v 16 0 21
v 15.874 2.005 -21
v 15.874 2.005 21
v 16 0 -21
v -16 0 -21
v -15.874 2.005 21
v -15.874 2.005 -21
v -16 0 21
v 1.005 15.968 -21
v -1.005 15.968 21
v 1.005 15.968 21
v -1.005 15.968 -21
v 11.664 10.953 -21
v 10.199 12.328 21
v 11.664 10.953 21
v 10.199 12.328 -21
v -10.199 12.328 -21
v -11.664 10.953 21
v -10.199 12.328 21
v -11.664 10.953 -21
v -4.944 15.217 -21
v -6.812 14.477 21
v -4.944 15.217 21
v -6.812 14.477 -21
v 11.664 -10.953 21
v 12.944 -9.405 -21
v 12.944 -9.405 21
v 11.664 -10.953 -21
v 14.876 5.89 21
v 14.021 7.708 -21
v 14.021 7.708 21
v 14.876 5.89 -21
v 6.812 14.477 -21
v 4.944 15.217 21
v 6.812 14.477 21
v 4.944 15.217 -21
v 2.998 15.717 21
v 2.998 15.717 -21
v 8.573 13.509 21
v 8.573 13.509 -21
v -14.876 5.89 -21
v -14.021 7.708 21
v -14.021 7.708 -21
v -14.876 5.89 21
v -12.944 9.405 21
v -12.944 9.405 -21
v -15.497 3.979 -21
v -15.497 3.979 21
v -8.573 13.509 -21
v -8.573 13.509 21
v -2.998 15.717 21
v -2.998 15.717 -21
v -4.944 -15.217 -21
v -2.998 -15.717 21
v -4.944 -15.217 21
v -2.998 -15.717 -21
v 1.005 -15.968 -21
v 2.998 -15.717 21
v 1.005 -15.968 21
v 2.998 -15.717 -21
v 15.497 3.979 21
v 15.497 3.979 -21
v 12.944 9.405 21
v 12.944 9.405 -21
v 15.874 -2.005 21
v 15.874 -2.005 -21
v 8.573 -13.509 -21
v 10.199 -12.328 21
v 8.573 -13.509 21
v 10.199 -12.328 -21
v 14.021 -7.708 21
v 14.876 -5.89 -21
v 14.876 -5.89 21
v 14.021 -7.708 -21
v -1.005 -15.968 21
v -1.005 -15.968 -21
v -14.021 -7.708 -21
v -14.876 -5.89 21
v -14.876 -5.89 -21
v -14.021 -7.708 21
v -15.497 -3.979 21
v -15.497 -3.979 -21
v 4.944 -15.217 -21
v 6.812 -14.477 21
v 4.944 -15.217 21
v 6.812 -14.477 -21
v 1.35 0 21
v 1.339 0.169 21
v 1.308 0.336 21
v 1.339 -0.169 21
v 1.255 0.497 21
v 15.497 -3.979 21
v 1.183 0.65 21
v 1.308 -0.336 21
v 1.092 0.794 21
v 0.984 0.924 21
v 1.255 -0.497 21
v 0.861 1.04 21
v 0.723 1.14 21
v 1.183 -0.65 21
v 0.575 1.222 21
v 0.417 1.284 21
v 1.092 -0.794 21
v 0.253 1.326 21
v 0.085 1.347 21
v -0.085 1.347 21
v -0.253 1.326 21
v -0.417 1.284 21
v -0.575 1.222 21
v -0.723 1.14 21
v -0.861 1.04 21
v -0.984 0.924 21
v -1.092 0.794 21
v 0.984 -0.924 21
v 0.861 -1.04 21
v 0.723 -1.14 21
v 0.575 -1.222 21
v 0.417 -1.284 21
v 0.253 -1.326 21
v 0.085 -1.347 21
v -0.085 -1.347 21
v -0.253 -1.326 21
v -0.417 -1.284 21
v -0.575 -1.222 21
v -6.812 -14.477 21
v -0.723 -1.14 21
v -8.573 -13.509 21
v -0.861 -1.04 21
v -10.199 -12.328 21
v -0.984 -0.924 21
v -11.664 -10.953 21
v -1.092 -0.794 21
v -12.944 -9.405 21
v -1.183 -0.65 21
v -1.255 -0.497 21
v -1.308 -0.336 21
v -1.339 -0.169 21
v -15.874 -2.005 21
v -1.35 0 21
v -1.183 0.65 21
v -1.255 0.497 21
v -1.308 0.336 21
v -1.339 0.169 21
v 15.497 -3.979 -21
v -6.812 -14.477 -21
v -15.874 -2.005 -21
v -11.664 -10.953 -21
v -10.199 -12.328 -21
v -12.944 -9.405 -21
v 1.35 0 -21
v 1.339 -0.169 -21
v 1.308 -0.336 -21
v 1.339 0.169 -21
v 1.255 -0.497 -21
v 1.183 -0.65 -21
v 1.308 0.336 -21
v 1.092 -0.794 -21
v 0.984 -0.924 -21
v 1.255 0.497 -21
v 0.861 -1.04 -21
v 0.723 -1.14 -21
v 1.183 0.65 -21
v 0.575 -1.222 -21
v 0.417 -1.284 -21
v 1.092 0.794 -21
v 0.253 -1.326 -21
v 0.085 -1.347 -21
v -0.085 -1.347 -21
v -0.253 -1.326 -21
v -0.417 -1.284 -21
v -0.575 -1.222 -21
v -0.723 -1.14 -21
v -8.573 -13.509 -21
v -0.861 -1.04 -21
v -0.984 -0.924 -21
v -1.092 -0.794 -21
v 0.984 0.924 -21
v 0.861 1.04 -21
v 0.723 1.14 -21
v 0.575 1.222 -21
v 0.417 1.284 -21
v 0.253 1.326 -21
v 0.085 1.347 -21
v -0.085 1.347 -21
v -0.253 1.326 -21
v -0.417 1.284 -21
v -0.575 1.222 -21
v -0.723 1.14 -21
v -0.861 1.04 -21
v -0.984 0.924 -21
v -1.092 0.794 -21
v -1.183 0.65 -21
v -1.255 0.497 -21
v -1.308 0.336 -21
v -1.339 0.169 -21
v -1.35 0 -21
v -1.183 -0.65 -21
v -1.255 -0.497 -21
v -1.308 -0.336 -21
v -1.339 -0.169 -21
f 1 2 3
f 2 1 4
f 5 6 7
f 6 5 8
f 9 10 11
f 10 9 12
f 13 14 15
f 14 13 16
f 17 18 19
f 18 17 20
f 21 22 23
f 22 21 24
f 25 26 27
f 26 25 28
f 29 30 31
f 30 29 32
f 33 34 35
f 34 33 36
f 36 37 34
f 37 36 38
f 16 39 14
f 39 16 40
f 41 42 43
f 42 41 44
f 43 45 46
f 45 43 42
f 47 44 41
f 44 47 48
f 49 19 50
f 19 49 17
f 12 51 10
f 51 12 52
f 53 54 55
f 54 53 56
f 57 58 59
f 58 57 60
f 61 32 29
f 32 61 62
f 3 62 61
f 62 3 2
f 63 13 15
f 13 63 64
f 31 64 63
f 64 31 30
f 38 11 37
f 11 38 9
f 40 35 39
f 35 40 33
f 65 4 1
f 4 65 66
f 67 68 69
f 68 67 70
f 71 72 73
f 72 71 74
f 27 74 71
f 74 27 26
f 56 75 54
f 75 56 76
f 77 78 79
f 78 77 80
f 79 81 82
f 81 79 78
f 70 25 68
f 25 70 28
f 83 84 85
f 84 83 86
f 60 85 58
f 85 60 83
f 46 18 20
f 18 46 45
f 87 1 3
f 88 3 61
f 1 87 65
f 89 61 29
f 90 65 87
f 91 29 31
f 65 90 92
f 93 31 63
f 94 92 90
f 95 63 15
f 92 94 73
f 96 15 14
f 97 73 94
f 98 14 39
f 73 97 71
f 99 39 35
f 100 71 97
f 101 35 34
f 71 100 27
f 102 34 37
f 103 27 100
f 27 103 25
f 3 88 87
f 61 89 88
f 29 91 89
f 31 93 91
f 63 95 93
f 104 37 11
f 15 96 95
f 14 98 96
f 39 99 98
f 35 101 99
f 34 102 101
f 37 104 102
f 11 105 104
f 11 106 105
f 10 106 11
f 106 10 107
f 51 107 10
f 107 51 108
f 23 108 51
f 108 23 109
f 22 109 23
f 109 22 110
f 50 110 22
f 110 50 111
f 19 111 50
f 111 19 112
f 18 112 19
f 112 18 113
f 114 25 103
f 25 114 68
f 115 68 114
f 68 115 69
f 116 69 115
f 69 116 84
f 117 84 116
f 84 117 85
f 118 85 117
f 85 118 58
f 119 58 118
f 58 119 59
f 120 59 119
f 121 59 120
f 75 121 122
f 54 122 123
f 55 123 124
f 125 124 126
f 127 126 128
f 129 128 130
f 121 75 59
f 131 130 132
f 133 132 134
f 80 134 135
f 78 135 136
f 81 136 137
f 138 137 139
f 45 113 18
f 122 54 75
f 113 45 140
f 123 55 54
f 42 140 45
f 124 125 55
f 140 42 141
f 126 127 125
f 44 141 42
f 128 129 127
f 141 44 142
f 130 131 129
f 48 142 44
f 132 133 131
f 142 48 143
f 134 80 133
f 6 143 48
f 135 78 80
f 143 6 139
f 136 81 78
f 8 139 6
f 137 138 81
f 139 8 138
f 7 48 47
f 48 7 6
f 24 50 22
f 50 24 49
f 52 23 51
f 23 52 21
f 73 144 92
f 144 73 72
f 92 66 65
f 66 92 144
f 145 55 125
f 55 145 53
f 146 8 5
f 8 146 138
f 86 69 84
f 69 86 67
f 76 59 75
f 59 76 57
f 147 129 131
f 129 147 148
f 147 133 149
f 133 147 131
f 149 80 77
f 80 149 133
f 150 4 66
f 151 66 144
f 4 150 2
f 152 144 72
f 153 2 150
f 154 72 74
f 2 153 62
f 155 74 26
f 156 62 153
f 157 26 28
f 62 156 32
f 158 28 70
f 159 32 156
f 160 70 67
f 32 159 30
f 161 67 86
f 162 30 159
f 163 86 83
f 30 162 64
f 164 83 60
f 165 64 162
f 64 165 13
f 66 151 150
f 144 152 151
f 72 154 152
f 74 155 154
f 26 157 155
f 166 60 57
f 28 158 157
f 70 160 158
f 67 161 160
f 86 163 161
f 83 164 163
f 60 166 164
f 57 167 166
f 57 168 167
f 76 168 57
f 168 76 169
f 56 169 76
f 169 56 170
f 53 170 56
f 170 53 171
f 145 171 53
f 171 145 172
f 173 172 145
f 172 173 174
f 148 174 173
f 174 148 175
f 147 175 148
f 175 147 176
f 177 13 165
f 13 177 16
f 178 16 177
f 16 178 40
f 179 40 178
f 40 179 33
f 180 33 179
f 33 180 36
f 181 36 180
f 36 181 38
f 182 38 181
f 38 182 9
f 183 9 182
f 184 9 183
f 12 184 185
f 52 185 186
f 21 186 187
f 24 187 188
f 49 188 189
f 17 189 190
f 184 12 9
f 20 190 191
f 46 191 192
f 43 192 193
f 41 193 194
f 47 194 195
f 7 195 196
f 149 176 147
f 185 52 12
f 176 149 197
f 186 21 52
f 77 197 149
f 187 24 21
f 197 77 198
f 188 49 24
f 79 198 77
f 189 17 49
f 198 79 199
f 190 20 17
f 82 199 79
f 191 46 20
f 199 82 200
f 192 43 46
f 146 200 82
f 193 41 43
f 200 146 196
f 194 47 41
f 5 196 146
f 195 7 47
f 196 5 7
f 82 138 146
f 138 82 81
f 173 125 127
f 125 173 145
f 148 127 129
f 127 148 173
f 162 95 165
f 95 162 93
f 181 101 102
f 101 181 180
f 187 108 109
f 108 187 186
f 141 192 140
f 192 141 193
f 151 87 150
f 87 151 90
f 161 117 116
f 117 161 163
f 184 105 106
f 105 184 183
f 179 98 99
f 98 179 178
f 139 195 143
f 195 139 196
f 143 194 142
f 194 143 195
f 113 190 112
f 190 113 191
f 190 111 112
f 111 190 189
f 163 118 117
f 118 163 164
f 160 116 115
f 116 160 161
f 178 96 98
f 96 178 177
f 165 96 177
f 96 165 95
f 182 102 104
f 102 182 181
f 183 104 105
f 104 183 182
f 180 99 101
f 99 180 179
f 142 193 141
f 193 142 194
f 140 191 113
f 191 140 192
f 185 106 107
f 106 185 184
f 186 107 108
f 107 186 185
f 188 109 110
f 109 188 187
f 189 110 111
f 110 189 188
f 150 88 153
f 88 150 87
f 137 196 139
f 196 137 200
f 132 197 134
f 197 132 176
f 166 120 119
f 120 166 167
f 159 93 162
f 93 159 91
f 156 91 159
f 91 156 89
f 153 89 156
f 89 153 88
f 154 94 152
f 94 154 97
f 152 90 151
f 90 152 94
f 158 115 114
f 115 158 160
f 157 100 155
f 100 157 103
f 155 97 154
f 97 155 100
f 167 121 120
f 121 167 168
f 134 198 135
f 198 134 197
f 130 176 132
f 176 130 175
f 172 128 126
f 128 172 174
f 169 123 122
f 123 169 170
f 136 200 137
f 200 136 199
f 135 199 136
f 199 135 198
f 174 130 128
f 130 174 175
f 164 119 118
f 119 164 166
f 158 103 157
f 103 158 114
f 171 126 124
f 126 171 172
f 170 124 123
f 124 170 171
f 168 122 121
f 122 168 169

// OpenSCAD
$fn = 50;


difference() {
	union() {
		translate(v = [0, 0, -21.0000000000]) {
			cylinder(h = 42, r = 16.0000000000);
		}
	}
	union() {
		translate(v = [0, 0, -100.0000000000]) {
			cylinder(h = 200, r = 1.3500000000);
		}
	}
}
